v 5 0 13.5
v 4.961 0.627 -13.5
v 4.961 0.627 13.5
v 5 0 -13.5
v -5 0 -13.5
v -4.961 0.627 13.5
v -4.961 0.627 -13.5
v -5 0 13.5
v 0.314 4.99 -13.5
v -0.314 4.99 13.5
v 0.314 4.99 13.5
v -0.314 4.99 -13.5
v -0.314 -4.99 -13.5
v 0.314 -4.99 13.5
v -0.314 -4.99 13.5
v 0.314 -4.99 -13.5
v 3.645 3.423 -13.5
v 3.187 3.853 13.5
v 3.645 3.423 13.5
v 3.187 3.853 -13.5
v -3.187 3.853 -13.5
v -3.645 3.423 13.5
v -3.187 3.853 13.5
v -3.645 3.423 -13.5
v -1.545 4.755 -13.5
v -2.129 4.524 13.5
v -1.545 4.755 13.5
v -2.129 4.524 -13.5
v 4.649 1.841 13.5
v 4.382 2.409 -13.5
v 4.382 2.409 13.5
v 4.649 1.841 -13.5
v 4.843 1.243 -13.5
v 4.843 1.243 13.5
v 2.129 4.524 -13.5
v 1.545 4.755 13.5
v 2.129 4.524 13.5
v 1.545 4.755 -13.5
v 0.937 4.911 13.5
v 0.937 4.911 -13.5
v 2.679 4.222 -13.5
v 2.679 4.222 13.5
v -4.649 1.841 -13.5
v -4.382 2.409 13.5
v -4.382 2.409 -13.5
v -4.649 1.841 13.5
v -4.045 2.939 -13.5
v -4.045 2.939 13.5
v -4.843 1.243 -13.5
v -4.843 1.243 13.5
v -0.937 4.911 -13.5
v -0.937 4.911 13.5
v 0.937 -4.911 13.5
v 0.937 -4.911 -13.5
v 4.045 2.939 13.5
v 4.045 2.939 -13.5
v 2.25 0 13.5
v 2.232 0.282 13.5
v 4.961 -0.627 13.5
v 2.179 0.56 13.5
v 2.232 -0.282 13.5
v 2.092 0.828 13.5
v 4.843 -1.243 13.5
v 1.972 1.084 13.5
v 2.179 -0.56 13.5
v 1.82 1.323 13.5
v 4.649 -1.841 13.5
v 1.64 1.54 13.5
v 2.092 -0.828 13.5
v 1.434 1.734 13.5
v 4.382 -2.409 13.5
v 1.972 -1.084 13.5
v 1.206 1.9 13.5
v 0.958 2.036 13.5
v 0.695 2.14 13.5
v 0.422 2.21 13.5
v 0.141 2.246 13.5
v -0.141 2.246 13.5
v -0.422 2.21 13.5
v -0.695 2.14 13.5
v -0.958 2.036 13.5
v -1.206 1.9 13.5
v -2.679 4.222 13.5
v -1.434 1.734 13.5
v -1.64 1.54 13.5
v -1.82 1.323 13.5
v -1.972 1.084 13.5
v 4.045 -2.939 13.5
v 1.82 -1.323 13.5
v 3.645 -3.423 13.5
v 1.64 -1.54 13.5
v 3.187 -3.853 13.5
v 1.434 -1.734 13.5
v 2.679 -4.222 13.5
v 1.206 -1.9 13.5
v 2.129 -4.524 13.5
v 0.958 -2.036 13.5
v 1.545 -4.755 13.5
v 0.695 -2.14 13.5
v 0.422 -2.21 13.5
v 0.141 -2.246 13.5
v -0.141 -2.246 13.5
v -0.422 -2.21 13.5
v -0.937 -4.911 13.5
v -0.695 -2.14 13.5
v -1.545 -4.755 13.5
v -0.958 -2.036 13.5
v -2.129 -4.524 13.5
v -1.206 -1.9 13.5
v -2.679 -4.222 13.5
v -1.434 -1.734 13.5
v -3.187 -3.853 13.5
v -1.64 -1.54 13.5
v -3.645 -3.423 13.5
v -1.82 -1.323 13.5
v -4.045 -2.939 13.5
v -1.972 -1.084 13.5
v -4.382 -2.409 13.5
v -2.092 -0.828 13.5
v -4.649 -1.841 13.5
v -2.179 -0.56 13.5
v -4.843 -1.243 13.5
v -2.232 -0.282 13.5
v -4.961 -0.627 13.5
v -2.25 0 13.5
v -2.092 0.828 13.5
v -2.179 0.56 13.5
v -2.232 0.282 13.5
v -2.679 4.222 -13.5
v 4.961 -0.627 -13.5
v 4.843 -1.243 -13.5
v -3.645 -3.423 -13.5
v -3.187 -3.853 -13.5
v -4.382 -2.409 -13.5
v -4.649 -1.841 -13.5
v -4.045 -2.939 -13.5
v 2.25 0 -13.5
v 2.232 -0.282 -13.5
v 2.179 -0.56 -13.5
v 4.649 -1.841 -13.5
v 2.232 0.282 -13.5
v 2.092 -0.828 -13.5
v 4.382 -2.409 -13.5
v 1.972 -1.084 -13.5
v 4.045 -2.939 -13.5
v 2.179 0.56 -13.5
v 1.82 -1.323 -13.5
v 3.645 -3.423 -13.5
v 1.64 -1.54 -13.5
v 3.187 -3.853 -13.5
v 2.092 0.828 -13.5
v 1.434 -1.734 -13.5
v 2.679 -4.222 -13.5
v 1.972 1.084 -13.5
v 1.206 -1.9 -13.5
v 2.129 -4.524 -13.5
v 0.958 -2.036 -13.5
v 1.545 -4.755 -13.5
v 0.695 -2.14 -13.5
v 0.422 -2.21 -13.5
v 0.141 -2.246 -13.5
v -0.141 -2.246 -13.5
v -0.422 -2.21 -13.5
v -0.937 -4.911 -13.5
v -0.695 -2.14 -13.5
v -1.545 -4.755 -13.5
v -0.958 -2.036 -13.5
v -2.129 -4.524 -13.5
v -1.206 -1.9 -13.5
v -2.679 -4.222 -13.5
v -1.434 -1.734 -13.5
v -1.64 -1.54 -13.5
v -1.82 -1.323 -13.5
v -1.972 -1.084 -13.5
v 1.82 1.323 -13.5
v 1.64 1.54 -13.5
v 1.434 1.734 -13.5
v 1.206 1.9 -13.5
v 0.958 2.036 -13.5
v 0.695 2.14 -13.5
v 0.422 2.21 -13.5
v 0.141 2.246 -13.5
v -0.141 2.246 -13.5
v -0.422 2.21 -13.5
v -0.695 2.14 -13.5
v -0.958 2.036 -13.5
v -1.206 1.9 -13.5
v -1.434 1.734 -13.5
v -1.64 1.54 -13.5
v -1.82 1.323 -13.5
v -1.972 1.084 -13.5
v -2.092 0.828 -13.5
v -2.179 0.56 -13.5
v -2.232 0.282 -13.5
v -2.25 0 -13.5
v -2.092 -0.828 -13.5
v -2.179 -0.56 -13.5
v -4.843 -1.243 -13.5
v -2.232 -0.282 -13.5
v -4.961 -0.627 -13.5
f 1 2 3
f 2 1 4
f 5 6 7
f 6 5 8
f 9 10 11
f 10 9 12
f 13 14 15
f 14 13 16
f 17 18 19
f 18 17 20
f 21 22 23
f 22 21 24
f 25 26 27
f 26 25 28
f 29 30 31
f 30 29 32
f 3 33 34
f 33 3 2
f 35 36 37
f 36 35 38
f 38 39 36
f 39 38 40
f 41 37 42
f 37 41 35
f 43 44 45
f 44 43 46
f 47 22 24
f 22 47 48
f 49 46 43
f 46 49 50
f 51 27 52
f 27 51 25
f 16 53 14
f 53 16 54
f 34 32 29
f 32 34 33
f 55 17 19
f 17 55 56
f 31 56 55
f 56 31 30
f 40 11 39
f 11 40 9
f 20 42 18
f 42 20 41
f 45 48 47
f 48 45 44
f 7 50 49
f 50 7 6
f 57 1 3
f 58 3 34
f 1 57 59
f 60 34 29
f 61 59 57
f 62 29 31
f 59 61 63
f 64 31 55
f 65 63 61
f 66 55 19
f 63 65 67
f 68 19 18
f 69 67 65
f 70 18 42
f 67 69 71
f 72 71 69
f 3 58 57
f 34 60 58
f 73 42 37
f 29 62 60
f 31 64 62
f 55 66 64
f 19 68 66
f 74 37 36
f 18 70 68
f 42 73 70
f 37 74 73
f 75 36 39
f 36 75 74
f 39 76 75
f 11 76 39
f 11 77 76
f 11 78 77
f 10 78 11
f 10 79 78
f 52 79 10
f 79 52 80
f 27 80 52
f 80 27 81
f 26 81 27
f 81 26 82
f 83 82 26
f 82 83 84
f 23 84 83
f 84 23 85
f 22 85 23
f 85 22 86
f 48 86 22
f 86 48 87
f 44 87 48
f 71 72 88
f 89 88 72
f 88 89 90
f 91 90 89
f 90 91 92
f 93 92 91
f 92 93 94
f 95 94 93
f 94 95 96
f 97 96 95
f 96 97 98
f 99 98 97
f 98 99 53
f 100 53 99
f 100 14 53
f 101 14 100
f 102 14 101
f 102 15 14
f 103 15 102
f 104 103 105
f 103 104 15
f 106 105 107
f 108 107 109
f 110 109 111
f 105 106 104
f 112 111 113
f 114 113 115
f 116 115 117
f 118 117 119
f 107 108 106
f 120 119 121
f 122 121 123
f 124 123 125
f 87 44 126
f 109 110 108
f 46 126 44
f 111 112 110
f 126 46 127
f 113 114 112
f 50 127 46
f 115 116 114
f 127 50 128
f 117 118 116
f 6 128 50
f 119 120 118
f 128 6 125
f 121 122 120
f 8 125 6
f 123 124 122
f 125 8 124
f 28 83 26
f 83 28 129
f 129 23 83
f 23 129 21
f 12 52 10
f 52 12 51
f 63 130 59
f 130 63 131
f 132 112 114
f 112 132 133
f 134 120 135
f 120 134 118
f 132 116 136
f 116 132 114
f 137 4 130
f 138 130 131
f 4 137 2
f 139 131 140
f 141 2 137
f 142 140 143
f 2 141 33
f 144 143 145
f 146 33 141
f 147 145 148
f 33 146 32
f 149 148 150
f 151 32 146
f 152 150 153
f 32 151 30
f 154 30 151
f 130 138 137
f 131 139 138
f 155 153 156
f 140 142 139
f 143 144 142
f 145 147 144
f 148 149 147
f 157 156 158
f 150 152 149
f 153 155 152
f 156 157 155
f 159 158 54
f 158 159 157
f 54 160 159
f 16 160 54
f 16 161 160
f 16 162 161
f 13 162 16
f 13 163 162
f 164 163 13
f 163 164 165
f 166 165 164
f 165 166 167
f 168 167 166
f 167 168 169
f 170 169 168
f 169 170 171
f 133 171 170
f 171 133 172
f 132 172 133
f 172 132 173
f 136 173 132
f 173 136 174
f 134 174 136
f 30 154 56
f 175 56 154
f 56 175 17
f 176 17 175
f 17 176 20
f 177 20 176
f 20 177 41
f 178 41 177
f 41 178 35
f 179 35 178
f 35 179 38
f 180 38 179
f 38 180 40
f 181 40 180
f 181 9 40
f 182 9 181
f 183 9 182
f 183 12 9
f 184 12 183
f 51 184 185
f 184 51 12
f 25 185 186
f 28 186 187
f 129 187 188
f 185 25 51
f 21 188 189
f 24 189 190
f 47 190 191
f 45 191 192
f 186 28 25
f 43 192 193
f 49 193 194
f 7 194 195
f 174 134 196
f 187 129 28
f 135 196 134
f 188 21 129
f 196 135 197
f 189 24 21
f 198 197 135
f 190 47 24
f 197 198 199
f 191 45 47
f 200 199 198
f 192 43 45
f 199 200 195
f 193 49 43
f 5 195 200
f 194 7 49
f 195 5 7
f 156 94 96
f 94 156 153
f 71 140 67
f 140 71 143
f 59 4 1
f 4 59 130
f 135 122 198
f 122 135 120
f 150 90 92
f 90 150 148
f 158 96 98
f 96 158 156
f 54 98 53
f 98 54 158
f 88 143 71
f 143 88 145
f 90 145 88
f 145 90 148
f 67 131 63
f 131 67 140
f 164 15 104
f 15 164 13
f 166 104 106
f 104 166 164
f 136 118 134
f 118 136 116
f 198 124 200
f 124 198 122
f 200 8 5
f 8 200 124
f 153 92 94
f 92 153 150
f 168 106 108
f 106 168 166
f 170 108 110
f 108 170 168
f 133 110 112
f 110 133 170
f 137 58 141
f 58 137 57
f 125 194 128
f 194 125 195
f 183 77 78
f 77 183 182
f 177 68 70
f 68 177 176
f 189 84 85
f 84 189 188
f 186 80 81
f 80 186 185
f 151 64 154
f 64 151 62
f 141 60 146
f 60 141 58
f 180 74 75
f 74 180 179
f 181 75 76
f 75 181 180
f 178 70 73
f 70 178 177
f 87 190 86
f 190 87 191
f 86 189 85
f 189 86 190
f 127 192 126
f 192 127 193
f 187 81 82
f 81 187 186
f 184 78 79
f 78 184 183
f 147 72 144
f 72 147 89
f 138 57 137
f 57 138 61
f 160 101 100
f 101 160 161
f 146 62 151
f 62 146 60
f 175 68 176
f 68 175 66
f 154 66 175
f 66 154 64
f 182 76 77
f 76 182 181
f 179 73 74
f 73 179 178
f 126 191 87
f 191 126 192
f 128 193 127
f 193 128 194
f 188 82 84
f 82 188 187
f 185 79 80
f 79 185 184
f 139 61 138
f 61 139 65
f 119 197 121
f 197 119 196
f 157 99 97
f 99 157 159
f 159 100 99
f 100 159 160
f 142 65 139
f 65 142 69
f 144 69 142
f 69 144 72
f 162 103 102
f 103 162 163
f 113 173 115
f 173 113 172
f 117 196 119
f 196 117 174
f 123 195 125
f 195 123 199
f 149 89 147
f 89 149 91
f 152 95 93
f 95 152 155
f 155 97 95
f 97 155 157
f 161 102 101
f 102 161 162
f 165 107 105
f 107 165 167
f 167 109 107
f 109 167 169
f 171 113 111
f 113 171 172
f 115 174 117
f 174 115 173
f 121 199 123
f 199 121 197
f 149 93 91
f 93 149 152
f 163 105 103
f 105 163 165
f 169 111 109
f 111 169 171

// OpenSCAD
$fn = 50;


difference() {
	union() {
		translate(v = [0, 0, -13.5000000000]) {
			cylinder(h = 27, r = 5.0000000000);
		}
	}
	union() {
		translate(v = [0, 0, -100.0000000000]) {
			cylinder(h = 200, r = 2.2500000000);
		}
	}
}
